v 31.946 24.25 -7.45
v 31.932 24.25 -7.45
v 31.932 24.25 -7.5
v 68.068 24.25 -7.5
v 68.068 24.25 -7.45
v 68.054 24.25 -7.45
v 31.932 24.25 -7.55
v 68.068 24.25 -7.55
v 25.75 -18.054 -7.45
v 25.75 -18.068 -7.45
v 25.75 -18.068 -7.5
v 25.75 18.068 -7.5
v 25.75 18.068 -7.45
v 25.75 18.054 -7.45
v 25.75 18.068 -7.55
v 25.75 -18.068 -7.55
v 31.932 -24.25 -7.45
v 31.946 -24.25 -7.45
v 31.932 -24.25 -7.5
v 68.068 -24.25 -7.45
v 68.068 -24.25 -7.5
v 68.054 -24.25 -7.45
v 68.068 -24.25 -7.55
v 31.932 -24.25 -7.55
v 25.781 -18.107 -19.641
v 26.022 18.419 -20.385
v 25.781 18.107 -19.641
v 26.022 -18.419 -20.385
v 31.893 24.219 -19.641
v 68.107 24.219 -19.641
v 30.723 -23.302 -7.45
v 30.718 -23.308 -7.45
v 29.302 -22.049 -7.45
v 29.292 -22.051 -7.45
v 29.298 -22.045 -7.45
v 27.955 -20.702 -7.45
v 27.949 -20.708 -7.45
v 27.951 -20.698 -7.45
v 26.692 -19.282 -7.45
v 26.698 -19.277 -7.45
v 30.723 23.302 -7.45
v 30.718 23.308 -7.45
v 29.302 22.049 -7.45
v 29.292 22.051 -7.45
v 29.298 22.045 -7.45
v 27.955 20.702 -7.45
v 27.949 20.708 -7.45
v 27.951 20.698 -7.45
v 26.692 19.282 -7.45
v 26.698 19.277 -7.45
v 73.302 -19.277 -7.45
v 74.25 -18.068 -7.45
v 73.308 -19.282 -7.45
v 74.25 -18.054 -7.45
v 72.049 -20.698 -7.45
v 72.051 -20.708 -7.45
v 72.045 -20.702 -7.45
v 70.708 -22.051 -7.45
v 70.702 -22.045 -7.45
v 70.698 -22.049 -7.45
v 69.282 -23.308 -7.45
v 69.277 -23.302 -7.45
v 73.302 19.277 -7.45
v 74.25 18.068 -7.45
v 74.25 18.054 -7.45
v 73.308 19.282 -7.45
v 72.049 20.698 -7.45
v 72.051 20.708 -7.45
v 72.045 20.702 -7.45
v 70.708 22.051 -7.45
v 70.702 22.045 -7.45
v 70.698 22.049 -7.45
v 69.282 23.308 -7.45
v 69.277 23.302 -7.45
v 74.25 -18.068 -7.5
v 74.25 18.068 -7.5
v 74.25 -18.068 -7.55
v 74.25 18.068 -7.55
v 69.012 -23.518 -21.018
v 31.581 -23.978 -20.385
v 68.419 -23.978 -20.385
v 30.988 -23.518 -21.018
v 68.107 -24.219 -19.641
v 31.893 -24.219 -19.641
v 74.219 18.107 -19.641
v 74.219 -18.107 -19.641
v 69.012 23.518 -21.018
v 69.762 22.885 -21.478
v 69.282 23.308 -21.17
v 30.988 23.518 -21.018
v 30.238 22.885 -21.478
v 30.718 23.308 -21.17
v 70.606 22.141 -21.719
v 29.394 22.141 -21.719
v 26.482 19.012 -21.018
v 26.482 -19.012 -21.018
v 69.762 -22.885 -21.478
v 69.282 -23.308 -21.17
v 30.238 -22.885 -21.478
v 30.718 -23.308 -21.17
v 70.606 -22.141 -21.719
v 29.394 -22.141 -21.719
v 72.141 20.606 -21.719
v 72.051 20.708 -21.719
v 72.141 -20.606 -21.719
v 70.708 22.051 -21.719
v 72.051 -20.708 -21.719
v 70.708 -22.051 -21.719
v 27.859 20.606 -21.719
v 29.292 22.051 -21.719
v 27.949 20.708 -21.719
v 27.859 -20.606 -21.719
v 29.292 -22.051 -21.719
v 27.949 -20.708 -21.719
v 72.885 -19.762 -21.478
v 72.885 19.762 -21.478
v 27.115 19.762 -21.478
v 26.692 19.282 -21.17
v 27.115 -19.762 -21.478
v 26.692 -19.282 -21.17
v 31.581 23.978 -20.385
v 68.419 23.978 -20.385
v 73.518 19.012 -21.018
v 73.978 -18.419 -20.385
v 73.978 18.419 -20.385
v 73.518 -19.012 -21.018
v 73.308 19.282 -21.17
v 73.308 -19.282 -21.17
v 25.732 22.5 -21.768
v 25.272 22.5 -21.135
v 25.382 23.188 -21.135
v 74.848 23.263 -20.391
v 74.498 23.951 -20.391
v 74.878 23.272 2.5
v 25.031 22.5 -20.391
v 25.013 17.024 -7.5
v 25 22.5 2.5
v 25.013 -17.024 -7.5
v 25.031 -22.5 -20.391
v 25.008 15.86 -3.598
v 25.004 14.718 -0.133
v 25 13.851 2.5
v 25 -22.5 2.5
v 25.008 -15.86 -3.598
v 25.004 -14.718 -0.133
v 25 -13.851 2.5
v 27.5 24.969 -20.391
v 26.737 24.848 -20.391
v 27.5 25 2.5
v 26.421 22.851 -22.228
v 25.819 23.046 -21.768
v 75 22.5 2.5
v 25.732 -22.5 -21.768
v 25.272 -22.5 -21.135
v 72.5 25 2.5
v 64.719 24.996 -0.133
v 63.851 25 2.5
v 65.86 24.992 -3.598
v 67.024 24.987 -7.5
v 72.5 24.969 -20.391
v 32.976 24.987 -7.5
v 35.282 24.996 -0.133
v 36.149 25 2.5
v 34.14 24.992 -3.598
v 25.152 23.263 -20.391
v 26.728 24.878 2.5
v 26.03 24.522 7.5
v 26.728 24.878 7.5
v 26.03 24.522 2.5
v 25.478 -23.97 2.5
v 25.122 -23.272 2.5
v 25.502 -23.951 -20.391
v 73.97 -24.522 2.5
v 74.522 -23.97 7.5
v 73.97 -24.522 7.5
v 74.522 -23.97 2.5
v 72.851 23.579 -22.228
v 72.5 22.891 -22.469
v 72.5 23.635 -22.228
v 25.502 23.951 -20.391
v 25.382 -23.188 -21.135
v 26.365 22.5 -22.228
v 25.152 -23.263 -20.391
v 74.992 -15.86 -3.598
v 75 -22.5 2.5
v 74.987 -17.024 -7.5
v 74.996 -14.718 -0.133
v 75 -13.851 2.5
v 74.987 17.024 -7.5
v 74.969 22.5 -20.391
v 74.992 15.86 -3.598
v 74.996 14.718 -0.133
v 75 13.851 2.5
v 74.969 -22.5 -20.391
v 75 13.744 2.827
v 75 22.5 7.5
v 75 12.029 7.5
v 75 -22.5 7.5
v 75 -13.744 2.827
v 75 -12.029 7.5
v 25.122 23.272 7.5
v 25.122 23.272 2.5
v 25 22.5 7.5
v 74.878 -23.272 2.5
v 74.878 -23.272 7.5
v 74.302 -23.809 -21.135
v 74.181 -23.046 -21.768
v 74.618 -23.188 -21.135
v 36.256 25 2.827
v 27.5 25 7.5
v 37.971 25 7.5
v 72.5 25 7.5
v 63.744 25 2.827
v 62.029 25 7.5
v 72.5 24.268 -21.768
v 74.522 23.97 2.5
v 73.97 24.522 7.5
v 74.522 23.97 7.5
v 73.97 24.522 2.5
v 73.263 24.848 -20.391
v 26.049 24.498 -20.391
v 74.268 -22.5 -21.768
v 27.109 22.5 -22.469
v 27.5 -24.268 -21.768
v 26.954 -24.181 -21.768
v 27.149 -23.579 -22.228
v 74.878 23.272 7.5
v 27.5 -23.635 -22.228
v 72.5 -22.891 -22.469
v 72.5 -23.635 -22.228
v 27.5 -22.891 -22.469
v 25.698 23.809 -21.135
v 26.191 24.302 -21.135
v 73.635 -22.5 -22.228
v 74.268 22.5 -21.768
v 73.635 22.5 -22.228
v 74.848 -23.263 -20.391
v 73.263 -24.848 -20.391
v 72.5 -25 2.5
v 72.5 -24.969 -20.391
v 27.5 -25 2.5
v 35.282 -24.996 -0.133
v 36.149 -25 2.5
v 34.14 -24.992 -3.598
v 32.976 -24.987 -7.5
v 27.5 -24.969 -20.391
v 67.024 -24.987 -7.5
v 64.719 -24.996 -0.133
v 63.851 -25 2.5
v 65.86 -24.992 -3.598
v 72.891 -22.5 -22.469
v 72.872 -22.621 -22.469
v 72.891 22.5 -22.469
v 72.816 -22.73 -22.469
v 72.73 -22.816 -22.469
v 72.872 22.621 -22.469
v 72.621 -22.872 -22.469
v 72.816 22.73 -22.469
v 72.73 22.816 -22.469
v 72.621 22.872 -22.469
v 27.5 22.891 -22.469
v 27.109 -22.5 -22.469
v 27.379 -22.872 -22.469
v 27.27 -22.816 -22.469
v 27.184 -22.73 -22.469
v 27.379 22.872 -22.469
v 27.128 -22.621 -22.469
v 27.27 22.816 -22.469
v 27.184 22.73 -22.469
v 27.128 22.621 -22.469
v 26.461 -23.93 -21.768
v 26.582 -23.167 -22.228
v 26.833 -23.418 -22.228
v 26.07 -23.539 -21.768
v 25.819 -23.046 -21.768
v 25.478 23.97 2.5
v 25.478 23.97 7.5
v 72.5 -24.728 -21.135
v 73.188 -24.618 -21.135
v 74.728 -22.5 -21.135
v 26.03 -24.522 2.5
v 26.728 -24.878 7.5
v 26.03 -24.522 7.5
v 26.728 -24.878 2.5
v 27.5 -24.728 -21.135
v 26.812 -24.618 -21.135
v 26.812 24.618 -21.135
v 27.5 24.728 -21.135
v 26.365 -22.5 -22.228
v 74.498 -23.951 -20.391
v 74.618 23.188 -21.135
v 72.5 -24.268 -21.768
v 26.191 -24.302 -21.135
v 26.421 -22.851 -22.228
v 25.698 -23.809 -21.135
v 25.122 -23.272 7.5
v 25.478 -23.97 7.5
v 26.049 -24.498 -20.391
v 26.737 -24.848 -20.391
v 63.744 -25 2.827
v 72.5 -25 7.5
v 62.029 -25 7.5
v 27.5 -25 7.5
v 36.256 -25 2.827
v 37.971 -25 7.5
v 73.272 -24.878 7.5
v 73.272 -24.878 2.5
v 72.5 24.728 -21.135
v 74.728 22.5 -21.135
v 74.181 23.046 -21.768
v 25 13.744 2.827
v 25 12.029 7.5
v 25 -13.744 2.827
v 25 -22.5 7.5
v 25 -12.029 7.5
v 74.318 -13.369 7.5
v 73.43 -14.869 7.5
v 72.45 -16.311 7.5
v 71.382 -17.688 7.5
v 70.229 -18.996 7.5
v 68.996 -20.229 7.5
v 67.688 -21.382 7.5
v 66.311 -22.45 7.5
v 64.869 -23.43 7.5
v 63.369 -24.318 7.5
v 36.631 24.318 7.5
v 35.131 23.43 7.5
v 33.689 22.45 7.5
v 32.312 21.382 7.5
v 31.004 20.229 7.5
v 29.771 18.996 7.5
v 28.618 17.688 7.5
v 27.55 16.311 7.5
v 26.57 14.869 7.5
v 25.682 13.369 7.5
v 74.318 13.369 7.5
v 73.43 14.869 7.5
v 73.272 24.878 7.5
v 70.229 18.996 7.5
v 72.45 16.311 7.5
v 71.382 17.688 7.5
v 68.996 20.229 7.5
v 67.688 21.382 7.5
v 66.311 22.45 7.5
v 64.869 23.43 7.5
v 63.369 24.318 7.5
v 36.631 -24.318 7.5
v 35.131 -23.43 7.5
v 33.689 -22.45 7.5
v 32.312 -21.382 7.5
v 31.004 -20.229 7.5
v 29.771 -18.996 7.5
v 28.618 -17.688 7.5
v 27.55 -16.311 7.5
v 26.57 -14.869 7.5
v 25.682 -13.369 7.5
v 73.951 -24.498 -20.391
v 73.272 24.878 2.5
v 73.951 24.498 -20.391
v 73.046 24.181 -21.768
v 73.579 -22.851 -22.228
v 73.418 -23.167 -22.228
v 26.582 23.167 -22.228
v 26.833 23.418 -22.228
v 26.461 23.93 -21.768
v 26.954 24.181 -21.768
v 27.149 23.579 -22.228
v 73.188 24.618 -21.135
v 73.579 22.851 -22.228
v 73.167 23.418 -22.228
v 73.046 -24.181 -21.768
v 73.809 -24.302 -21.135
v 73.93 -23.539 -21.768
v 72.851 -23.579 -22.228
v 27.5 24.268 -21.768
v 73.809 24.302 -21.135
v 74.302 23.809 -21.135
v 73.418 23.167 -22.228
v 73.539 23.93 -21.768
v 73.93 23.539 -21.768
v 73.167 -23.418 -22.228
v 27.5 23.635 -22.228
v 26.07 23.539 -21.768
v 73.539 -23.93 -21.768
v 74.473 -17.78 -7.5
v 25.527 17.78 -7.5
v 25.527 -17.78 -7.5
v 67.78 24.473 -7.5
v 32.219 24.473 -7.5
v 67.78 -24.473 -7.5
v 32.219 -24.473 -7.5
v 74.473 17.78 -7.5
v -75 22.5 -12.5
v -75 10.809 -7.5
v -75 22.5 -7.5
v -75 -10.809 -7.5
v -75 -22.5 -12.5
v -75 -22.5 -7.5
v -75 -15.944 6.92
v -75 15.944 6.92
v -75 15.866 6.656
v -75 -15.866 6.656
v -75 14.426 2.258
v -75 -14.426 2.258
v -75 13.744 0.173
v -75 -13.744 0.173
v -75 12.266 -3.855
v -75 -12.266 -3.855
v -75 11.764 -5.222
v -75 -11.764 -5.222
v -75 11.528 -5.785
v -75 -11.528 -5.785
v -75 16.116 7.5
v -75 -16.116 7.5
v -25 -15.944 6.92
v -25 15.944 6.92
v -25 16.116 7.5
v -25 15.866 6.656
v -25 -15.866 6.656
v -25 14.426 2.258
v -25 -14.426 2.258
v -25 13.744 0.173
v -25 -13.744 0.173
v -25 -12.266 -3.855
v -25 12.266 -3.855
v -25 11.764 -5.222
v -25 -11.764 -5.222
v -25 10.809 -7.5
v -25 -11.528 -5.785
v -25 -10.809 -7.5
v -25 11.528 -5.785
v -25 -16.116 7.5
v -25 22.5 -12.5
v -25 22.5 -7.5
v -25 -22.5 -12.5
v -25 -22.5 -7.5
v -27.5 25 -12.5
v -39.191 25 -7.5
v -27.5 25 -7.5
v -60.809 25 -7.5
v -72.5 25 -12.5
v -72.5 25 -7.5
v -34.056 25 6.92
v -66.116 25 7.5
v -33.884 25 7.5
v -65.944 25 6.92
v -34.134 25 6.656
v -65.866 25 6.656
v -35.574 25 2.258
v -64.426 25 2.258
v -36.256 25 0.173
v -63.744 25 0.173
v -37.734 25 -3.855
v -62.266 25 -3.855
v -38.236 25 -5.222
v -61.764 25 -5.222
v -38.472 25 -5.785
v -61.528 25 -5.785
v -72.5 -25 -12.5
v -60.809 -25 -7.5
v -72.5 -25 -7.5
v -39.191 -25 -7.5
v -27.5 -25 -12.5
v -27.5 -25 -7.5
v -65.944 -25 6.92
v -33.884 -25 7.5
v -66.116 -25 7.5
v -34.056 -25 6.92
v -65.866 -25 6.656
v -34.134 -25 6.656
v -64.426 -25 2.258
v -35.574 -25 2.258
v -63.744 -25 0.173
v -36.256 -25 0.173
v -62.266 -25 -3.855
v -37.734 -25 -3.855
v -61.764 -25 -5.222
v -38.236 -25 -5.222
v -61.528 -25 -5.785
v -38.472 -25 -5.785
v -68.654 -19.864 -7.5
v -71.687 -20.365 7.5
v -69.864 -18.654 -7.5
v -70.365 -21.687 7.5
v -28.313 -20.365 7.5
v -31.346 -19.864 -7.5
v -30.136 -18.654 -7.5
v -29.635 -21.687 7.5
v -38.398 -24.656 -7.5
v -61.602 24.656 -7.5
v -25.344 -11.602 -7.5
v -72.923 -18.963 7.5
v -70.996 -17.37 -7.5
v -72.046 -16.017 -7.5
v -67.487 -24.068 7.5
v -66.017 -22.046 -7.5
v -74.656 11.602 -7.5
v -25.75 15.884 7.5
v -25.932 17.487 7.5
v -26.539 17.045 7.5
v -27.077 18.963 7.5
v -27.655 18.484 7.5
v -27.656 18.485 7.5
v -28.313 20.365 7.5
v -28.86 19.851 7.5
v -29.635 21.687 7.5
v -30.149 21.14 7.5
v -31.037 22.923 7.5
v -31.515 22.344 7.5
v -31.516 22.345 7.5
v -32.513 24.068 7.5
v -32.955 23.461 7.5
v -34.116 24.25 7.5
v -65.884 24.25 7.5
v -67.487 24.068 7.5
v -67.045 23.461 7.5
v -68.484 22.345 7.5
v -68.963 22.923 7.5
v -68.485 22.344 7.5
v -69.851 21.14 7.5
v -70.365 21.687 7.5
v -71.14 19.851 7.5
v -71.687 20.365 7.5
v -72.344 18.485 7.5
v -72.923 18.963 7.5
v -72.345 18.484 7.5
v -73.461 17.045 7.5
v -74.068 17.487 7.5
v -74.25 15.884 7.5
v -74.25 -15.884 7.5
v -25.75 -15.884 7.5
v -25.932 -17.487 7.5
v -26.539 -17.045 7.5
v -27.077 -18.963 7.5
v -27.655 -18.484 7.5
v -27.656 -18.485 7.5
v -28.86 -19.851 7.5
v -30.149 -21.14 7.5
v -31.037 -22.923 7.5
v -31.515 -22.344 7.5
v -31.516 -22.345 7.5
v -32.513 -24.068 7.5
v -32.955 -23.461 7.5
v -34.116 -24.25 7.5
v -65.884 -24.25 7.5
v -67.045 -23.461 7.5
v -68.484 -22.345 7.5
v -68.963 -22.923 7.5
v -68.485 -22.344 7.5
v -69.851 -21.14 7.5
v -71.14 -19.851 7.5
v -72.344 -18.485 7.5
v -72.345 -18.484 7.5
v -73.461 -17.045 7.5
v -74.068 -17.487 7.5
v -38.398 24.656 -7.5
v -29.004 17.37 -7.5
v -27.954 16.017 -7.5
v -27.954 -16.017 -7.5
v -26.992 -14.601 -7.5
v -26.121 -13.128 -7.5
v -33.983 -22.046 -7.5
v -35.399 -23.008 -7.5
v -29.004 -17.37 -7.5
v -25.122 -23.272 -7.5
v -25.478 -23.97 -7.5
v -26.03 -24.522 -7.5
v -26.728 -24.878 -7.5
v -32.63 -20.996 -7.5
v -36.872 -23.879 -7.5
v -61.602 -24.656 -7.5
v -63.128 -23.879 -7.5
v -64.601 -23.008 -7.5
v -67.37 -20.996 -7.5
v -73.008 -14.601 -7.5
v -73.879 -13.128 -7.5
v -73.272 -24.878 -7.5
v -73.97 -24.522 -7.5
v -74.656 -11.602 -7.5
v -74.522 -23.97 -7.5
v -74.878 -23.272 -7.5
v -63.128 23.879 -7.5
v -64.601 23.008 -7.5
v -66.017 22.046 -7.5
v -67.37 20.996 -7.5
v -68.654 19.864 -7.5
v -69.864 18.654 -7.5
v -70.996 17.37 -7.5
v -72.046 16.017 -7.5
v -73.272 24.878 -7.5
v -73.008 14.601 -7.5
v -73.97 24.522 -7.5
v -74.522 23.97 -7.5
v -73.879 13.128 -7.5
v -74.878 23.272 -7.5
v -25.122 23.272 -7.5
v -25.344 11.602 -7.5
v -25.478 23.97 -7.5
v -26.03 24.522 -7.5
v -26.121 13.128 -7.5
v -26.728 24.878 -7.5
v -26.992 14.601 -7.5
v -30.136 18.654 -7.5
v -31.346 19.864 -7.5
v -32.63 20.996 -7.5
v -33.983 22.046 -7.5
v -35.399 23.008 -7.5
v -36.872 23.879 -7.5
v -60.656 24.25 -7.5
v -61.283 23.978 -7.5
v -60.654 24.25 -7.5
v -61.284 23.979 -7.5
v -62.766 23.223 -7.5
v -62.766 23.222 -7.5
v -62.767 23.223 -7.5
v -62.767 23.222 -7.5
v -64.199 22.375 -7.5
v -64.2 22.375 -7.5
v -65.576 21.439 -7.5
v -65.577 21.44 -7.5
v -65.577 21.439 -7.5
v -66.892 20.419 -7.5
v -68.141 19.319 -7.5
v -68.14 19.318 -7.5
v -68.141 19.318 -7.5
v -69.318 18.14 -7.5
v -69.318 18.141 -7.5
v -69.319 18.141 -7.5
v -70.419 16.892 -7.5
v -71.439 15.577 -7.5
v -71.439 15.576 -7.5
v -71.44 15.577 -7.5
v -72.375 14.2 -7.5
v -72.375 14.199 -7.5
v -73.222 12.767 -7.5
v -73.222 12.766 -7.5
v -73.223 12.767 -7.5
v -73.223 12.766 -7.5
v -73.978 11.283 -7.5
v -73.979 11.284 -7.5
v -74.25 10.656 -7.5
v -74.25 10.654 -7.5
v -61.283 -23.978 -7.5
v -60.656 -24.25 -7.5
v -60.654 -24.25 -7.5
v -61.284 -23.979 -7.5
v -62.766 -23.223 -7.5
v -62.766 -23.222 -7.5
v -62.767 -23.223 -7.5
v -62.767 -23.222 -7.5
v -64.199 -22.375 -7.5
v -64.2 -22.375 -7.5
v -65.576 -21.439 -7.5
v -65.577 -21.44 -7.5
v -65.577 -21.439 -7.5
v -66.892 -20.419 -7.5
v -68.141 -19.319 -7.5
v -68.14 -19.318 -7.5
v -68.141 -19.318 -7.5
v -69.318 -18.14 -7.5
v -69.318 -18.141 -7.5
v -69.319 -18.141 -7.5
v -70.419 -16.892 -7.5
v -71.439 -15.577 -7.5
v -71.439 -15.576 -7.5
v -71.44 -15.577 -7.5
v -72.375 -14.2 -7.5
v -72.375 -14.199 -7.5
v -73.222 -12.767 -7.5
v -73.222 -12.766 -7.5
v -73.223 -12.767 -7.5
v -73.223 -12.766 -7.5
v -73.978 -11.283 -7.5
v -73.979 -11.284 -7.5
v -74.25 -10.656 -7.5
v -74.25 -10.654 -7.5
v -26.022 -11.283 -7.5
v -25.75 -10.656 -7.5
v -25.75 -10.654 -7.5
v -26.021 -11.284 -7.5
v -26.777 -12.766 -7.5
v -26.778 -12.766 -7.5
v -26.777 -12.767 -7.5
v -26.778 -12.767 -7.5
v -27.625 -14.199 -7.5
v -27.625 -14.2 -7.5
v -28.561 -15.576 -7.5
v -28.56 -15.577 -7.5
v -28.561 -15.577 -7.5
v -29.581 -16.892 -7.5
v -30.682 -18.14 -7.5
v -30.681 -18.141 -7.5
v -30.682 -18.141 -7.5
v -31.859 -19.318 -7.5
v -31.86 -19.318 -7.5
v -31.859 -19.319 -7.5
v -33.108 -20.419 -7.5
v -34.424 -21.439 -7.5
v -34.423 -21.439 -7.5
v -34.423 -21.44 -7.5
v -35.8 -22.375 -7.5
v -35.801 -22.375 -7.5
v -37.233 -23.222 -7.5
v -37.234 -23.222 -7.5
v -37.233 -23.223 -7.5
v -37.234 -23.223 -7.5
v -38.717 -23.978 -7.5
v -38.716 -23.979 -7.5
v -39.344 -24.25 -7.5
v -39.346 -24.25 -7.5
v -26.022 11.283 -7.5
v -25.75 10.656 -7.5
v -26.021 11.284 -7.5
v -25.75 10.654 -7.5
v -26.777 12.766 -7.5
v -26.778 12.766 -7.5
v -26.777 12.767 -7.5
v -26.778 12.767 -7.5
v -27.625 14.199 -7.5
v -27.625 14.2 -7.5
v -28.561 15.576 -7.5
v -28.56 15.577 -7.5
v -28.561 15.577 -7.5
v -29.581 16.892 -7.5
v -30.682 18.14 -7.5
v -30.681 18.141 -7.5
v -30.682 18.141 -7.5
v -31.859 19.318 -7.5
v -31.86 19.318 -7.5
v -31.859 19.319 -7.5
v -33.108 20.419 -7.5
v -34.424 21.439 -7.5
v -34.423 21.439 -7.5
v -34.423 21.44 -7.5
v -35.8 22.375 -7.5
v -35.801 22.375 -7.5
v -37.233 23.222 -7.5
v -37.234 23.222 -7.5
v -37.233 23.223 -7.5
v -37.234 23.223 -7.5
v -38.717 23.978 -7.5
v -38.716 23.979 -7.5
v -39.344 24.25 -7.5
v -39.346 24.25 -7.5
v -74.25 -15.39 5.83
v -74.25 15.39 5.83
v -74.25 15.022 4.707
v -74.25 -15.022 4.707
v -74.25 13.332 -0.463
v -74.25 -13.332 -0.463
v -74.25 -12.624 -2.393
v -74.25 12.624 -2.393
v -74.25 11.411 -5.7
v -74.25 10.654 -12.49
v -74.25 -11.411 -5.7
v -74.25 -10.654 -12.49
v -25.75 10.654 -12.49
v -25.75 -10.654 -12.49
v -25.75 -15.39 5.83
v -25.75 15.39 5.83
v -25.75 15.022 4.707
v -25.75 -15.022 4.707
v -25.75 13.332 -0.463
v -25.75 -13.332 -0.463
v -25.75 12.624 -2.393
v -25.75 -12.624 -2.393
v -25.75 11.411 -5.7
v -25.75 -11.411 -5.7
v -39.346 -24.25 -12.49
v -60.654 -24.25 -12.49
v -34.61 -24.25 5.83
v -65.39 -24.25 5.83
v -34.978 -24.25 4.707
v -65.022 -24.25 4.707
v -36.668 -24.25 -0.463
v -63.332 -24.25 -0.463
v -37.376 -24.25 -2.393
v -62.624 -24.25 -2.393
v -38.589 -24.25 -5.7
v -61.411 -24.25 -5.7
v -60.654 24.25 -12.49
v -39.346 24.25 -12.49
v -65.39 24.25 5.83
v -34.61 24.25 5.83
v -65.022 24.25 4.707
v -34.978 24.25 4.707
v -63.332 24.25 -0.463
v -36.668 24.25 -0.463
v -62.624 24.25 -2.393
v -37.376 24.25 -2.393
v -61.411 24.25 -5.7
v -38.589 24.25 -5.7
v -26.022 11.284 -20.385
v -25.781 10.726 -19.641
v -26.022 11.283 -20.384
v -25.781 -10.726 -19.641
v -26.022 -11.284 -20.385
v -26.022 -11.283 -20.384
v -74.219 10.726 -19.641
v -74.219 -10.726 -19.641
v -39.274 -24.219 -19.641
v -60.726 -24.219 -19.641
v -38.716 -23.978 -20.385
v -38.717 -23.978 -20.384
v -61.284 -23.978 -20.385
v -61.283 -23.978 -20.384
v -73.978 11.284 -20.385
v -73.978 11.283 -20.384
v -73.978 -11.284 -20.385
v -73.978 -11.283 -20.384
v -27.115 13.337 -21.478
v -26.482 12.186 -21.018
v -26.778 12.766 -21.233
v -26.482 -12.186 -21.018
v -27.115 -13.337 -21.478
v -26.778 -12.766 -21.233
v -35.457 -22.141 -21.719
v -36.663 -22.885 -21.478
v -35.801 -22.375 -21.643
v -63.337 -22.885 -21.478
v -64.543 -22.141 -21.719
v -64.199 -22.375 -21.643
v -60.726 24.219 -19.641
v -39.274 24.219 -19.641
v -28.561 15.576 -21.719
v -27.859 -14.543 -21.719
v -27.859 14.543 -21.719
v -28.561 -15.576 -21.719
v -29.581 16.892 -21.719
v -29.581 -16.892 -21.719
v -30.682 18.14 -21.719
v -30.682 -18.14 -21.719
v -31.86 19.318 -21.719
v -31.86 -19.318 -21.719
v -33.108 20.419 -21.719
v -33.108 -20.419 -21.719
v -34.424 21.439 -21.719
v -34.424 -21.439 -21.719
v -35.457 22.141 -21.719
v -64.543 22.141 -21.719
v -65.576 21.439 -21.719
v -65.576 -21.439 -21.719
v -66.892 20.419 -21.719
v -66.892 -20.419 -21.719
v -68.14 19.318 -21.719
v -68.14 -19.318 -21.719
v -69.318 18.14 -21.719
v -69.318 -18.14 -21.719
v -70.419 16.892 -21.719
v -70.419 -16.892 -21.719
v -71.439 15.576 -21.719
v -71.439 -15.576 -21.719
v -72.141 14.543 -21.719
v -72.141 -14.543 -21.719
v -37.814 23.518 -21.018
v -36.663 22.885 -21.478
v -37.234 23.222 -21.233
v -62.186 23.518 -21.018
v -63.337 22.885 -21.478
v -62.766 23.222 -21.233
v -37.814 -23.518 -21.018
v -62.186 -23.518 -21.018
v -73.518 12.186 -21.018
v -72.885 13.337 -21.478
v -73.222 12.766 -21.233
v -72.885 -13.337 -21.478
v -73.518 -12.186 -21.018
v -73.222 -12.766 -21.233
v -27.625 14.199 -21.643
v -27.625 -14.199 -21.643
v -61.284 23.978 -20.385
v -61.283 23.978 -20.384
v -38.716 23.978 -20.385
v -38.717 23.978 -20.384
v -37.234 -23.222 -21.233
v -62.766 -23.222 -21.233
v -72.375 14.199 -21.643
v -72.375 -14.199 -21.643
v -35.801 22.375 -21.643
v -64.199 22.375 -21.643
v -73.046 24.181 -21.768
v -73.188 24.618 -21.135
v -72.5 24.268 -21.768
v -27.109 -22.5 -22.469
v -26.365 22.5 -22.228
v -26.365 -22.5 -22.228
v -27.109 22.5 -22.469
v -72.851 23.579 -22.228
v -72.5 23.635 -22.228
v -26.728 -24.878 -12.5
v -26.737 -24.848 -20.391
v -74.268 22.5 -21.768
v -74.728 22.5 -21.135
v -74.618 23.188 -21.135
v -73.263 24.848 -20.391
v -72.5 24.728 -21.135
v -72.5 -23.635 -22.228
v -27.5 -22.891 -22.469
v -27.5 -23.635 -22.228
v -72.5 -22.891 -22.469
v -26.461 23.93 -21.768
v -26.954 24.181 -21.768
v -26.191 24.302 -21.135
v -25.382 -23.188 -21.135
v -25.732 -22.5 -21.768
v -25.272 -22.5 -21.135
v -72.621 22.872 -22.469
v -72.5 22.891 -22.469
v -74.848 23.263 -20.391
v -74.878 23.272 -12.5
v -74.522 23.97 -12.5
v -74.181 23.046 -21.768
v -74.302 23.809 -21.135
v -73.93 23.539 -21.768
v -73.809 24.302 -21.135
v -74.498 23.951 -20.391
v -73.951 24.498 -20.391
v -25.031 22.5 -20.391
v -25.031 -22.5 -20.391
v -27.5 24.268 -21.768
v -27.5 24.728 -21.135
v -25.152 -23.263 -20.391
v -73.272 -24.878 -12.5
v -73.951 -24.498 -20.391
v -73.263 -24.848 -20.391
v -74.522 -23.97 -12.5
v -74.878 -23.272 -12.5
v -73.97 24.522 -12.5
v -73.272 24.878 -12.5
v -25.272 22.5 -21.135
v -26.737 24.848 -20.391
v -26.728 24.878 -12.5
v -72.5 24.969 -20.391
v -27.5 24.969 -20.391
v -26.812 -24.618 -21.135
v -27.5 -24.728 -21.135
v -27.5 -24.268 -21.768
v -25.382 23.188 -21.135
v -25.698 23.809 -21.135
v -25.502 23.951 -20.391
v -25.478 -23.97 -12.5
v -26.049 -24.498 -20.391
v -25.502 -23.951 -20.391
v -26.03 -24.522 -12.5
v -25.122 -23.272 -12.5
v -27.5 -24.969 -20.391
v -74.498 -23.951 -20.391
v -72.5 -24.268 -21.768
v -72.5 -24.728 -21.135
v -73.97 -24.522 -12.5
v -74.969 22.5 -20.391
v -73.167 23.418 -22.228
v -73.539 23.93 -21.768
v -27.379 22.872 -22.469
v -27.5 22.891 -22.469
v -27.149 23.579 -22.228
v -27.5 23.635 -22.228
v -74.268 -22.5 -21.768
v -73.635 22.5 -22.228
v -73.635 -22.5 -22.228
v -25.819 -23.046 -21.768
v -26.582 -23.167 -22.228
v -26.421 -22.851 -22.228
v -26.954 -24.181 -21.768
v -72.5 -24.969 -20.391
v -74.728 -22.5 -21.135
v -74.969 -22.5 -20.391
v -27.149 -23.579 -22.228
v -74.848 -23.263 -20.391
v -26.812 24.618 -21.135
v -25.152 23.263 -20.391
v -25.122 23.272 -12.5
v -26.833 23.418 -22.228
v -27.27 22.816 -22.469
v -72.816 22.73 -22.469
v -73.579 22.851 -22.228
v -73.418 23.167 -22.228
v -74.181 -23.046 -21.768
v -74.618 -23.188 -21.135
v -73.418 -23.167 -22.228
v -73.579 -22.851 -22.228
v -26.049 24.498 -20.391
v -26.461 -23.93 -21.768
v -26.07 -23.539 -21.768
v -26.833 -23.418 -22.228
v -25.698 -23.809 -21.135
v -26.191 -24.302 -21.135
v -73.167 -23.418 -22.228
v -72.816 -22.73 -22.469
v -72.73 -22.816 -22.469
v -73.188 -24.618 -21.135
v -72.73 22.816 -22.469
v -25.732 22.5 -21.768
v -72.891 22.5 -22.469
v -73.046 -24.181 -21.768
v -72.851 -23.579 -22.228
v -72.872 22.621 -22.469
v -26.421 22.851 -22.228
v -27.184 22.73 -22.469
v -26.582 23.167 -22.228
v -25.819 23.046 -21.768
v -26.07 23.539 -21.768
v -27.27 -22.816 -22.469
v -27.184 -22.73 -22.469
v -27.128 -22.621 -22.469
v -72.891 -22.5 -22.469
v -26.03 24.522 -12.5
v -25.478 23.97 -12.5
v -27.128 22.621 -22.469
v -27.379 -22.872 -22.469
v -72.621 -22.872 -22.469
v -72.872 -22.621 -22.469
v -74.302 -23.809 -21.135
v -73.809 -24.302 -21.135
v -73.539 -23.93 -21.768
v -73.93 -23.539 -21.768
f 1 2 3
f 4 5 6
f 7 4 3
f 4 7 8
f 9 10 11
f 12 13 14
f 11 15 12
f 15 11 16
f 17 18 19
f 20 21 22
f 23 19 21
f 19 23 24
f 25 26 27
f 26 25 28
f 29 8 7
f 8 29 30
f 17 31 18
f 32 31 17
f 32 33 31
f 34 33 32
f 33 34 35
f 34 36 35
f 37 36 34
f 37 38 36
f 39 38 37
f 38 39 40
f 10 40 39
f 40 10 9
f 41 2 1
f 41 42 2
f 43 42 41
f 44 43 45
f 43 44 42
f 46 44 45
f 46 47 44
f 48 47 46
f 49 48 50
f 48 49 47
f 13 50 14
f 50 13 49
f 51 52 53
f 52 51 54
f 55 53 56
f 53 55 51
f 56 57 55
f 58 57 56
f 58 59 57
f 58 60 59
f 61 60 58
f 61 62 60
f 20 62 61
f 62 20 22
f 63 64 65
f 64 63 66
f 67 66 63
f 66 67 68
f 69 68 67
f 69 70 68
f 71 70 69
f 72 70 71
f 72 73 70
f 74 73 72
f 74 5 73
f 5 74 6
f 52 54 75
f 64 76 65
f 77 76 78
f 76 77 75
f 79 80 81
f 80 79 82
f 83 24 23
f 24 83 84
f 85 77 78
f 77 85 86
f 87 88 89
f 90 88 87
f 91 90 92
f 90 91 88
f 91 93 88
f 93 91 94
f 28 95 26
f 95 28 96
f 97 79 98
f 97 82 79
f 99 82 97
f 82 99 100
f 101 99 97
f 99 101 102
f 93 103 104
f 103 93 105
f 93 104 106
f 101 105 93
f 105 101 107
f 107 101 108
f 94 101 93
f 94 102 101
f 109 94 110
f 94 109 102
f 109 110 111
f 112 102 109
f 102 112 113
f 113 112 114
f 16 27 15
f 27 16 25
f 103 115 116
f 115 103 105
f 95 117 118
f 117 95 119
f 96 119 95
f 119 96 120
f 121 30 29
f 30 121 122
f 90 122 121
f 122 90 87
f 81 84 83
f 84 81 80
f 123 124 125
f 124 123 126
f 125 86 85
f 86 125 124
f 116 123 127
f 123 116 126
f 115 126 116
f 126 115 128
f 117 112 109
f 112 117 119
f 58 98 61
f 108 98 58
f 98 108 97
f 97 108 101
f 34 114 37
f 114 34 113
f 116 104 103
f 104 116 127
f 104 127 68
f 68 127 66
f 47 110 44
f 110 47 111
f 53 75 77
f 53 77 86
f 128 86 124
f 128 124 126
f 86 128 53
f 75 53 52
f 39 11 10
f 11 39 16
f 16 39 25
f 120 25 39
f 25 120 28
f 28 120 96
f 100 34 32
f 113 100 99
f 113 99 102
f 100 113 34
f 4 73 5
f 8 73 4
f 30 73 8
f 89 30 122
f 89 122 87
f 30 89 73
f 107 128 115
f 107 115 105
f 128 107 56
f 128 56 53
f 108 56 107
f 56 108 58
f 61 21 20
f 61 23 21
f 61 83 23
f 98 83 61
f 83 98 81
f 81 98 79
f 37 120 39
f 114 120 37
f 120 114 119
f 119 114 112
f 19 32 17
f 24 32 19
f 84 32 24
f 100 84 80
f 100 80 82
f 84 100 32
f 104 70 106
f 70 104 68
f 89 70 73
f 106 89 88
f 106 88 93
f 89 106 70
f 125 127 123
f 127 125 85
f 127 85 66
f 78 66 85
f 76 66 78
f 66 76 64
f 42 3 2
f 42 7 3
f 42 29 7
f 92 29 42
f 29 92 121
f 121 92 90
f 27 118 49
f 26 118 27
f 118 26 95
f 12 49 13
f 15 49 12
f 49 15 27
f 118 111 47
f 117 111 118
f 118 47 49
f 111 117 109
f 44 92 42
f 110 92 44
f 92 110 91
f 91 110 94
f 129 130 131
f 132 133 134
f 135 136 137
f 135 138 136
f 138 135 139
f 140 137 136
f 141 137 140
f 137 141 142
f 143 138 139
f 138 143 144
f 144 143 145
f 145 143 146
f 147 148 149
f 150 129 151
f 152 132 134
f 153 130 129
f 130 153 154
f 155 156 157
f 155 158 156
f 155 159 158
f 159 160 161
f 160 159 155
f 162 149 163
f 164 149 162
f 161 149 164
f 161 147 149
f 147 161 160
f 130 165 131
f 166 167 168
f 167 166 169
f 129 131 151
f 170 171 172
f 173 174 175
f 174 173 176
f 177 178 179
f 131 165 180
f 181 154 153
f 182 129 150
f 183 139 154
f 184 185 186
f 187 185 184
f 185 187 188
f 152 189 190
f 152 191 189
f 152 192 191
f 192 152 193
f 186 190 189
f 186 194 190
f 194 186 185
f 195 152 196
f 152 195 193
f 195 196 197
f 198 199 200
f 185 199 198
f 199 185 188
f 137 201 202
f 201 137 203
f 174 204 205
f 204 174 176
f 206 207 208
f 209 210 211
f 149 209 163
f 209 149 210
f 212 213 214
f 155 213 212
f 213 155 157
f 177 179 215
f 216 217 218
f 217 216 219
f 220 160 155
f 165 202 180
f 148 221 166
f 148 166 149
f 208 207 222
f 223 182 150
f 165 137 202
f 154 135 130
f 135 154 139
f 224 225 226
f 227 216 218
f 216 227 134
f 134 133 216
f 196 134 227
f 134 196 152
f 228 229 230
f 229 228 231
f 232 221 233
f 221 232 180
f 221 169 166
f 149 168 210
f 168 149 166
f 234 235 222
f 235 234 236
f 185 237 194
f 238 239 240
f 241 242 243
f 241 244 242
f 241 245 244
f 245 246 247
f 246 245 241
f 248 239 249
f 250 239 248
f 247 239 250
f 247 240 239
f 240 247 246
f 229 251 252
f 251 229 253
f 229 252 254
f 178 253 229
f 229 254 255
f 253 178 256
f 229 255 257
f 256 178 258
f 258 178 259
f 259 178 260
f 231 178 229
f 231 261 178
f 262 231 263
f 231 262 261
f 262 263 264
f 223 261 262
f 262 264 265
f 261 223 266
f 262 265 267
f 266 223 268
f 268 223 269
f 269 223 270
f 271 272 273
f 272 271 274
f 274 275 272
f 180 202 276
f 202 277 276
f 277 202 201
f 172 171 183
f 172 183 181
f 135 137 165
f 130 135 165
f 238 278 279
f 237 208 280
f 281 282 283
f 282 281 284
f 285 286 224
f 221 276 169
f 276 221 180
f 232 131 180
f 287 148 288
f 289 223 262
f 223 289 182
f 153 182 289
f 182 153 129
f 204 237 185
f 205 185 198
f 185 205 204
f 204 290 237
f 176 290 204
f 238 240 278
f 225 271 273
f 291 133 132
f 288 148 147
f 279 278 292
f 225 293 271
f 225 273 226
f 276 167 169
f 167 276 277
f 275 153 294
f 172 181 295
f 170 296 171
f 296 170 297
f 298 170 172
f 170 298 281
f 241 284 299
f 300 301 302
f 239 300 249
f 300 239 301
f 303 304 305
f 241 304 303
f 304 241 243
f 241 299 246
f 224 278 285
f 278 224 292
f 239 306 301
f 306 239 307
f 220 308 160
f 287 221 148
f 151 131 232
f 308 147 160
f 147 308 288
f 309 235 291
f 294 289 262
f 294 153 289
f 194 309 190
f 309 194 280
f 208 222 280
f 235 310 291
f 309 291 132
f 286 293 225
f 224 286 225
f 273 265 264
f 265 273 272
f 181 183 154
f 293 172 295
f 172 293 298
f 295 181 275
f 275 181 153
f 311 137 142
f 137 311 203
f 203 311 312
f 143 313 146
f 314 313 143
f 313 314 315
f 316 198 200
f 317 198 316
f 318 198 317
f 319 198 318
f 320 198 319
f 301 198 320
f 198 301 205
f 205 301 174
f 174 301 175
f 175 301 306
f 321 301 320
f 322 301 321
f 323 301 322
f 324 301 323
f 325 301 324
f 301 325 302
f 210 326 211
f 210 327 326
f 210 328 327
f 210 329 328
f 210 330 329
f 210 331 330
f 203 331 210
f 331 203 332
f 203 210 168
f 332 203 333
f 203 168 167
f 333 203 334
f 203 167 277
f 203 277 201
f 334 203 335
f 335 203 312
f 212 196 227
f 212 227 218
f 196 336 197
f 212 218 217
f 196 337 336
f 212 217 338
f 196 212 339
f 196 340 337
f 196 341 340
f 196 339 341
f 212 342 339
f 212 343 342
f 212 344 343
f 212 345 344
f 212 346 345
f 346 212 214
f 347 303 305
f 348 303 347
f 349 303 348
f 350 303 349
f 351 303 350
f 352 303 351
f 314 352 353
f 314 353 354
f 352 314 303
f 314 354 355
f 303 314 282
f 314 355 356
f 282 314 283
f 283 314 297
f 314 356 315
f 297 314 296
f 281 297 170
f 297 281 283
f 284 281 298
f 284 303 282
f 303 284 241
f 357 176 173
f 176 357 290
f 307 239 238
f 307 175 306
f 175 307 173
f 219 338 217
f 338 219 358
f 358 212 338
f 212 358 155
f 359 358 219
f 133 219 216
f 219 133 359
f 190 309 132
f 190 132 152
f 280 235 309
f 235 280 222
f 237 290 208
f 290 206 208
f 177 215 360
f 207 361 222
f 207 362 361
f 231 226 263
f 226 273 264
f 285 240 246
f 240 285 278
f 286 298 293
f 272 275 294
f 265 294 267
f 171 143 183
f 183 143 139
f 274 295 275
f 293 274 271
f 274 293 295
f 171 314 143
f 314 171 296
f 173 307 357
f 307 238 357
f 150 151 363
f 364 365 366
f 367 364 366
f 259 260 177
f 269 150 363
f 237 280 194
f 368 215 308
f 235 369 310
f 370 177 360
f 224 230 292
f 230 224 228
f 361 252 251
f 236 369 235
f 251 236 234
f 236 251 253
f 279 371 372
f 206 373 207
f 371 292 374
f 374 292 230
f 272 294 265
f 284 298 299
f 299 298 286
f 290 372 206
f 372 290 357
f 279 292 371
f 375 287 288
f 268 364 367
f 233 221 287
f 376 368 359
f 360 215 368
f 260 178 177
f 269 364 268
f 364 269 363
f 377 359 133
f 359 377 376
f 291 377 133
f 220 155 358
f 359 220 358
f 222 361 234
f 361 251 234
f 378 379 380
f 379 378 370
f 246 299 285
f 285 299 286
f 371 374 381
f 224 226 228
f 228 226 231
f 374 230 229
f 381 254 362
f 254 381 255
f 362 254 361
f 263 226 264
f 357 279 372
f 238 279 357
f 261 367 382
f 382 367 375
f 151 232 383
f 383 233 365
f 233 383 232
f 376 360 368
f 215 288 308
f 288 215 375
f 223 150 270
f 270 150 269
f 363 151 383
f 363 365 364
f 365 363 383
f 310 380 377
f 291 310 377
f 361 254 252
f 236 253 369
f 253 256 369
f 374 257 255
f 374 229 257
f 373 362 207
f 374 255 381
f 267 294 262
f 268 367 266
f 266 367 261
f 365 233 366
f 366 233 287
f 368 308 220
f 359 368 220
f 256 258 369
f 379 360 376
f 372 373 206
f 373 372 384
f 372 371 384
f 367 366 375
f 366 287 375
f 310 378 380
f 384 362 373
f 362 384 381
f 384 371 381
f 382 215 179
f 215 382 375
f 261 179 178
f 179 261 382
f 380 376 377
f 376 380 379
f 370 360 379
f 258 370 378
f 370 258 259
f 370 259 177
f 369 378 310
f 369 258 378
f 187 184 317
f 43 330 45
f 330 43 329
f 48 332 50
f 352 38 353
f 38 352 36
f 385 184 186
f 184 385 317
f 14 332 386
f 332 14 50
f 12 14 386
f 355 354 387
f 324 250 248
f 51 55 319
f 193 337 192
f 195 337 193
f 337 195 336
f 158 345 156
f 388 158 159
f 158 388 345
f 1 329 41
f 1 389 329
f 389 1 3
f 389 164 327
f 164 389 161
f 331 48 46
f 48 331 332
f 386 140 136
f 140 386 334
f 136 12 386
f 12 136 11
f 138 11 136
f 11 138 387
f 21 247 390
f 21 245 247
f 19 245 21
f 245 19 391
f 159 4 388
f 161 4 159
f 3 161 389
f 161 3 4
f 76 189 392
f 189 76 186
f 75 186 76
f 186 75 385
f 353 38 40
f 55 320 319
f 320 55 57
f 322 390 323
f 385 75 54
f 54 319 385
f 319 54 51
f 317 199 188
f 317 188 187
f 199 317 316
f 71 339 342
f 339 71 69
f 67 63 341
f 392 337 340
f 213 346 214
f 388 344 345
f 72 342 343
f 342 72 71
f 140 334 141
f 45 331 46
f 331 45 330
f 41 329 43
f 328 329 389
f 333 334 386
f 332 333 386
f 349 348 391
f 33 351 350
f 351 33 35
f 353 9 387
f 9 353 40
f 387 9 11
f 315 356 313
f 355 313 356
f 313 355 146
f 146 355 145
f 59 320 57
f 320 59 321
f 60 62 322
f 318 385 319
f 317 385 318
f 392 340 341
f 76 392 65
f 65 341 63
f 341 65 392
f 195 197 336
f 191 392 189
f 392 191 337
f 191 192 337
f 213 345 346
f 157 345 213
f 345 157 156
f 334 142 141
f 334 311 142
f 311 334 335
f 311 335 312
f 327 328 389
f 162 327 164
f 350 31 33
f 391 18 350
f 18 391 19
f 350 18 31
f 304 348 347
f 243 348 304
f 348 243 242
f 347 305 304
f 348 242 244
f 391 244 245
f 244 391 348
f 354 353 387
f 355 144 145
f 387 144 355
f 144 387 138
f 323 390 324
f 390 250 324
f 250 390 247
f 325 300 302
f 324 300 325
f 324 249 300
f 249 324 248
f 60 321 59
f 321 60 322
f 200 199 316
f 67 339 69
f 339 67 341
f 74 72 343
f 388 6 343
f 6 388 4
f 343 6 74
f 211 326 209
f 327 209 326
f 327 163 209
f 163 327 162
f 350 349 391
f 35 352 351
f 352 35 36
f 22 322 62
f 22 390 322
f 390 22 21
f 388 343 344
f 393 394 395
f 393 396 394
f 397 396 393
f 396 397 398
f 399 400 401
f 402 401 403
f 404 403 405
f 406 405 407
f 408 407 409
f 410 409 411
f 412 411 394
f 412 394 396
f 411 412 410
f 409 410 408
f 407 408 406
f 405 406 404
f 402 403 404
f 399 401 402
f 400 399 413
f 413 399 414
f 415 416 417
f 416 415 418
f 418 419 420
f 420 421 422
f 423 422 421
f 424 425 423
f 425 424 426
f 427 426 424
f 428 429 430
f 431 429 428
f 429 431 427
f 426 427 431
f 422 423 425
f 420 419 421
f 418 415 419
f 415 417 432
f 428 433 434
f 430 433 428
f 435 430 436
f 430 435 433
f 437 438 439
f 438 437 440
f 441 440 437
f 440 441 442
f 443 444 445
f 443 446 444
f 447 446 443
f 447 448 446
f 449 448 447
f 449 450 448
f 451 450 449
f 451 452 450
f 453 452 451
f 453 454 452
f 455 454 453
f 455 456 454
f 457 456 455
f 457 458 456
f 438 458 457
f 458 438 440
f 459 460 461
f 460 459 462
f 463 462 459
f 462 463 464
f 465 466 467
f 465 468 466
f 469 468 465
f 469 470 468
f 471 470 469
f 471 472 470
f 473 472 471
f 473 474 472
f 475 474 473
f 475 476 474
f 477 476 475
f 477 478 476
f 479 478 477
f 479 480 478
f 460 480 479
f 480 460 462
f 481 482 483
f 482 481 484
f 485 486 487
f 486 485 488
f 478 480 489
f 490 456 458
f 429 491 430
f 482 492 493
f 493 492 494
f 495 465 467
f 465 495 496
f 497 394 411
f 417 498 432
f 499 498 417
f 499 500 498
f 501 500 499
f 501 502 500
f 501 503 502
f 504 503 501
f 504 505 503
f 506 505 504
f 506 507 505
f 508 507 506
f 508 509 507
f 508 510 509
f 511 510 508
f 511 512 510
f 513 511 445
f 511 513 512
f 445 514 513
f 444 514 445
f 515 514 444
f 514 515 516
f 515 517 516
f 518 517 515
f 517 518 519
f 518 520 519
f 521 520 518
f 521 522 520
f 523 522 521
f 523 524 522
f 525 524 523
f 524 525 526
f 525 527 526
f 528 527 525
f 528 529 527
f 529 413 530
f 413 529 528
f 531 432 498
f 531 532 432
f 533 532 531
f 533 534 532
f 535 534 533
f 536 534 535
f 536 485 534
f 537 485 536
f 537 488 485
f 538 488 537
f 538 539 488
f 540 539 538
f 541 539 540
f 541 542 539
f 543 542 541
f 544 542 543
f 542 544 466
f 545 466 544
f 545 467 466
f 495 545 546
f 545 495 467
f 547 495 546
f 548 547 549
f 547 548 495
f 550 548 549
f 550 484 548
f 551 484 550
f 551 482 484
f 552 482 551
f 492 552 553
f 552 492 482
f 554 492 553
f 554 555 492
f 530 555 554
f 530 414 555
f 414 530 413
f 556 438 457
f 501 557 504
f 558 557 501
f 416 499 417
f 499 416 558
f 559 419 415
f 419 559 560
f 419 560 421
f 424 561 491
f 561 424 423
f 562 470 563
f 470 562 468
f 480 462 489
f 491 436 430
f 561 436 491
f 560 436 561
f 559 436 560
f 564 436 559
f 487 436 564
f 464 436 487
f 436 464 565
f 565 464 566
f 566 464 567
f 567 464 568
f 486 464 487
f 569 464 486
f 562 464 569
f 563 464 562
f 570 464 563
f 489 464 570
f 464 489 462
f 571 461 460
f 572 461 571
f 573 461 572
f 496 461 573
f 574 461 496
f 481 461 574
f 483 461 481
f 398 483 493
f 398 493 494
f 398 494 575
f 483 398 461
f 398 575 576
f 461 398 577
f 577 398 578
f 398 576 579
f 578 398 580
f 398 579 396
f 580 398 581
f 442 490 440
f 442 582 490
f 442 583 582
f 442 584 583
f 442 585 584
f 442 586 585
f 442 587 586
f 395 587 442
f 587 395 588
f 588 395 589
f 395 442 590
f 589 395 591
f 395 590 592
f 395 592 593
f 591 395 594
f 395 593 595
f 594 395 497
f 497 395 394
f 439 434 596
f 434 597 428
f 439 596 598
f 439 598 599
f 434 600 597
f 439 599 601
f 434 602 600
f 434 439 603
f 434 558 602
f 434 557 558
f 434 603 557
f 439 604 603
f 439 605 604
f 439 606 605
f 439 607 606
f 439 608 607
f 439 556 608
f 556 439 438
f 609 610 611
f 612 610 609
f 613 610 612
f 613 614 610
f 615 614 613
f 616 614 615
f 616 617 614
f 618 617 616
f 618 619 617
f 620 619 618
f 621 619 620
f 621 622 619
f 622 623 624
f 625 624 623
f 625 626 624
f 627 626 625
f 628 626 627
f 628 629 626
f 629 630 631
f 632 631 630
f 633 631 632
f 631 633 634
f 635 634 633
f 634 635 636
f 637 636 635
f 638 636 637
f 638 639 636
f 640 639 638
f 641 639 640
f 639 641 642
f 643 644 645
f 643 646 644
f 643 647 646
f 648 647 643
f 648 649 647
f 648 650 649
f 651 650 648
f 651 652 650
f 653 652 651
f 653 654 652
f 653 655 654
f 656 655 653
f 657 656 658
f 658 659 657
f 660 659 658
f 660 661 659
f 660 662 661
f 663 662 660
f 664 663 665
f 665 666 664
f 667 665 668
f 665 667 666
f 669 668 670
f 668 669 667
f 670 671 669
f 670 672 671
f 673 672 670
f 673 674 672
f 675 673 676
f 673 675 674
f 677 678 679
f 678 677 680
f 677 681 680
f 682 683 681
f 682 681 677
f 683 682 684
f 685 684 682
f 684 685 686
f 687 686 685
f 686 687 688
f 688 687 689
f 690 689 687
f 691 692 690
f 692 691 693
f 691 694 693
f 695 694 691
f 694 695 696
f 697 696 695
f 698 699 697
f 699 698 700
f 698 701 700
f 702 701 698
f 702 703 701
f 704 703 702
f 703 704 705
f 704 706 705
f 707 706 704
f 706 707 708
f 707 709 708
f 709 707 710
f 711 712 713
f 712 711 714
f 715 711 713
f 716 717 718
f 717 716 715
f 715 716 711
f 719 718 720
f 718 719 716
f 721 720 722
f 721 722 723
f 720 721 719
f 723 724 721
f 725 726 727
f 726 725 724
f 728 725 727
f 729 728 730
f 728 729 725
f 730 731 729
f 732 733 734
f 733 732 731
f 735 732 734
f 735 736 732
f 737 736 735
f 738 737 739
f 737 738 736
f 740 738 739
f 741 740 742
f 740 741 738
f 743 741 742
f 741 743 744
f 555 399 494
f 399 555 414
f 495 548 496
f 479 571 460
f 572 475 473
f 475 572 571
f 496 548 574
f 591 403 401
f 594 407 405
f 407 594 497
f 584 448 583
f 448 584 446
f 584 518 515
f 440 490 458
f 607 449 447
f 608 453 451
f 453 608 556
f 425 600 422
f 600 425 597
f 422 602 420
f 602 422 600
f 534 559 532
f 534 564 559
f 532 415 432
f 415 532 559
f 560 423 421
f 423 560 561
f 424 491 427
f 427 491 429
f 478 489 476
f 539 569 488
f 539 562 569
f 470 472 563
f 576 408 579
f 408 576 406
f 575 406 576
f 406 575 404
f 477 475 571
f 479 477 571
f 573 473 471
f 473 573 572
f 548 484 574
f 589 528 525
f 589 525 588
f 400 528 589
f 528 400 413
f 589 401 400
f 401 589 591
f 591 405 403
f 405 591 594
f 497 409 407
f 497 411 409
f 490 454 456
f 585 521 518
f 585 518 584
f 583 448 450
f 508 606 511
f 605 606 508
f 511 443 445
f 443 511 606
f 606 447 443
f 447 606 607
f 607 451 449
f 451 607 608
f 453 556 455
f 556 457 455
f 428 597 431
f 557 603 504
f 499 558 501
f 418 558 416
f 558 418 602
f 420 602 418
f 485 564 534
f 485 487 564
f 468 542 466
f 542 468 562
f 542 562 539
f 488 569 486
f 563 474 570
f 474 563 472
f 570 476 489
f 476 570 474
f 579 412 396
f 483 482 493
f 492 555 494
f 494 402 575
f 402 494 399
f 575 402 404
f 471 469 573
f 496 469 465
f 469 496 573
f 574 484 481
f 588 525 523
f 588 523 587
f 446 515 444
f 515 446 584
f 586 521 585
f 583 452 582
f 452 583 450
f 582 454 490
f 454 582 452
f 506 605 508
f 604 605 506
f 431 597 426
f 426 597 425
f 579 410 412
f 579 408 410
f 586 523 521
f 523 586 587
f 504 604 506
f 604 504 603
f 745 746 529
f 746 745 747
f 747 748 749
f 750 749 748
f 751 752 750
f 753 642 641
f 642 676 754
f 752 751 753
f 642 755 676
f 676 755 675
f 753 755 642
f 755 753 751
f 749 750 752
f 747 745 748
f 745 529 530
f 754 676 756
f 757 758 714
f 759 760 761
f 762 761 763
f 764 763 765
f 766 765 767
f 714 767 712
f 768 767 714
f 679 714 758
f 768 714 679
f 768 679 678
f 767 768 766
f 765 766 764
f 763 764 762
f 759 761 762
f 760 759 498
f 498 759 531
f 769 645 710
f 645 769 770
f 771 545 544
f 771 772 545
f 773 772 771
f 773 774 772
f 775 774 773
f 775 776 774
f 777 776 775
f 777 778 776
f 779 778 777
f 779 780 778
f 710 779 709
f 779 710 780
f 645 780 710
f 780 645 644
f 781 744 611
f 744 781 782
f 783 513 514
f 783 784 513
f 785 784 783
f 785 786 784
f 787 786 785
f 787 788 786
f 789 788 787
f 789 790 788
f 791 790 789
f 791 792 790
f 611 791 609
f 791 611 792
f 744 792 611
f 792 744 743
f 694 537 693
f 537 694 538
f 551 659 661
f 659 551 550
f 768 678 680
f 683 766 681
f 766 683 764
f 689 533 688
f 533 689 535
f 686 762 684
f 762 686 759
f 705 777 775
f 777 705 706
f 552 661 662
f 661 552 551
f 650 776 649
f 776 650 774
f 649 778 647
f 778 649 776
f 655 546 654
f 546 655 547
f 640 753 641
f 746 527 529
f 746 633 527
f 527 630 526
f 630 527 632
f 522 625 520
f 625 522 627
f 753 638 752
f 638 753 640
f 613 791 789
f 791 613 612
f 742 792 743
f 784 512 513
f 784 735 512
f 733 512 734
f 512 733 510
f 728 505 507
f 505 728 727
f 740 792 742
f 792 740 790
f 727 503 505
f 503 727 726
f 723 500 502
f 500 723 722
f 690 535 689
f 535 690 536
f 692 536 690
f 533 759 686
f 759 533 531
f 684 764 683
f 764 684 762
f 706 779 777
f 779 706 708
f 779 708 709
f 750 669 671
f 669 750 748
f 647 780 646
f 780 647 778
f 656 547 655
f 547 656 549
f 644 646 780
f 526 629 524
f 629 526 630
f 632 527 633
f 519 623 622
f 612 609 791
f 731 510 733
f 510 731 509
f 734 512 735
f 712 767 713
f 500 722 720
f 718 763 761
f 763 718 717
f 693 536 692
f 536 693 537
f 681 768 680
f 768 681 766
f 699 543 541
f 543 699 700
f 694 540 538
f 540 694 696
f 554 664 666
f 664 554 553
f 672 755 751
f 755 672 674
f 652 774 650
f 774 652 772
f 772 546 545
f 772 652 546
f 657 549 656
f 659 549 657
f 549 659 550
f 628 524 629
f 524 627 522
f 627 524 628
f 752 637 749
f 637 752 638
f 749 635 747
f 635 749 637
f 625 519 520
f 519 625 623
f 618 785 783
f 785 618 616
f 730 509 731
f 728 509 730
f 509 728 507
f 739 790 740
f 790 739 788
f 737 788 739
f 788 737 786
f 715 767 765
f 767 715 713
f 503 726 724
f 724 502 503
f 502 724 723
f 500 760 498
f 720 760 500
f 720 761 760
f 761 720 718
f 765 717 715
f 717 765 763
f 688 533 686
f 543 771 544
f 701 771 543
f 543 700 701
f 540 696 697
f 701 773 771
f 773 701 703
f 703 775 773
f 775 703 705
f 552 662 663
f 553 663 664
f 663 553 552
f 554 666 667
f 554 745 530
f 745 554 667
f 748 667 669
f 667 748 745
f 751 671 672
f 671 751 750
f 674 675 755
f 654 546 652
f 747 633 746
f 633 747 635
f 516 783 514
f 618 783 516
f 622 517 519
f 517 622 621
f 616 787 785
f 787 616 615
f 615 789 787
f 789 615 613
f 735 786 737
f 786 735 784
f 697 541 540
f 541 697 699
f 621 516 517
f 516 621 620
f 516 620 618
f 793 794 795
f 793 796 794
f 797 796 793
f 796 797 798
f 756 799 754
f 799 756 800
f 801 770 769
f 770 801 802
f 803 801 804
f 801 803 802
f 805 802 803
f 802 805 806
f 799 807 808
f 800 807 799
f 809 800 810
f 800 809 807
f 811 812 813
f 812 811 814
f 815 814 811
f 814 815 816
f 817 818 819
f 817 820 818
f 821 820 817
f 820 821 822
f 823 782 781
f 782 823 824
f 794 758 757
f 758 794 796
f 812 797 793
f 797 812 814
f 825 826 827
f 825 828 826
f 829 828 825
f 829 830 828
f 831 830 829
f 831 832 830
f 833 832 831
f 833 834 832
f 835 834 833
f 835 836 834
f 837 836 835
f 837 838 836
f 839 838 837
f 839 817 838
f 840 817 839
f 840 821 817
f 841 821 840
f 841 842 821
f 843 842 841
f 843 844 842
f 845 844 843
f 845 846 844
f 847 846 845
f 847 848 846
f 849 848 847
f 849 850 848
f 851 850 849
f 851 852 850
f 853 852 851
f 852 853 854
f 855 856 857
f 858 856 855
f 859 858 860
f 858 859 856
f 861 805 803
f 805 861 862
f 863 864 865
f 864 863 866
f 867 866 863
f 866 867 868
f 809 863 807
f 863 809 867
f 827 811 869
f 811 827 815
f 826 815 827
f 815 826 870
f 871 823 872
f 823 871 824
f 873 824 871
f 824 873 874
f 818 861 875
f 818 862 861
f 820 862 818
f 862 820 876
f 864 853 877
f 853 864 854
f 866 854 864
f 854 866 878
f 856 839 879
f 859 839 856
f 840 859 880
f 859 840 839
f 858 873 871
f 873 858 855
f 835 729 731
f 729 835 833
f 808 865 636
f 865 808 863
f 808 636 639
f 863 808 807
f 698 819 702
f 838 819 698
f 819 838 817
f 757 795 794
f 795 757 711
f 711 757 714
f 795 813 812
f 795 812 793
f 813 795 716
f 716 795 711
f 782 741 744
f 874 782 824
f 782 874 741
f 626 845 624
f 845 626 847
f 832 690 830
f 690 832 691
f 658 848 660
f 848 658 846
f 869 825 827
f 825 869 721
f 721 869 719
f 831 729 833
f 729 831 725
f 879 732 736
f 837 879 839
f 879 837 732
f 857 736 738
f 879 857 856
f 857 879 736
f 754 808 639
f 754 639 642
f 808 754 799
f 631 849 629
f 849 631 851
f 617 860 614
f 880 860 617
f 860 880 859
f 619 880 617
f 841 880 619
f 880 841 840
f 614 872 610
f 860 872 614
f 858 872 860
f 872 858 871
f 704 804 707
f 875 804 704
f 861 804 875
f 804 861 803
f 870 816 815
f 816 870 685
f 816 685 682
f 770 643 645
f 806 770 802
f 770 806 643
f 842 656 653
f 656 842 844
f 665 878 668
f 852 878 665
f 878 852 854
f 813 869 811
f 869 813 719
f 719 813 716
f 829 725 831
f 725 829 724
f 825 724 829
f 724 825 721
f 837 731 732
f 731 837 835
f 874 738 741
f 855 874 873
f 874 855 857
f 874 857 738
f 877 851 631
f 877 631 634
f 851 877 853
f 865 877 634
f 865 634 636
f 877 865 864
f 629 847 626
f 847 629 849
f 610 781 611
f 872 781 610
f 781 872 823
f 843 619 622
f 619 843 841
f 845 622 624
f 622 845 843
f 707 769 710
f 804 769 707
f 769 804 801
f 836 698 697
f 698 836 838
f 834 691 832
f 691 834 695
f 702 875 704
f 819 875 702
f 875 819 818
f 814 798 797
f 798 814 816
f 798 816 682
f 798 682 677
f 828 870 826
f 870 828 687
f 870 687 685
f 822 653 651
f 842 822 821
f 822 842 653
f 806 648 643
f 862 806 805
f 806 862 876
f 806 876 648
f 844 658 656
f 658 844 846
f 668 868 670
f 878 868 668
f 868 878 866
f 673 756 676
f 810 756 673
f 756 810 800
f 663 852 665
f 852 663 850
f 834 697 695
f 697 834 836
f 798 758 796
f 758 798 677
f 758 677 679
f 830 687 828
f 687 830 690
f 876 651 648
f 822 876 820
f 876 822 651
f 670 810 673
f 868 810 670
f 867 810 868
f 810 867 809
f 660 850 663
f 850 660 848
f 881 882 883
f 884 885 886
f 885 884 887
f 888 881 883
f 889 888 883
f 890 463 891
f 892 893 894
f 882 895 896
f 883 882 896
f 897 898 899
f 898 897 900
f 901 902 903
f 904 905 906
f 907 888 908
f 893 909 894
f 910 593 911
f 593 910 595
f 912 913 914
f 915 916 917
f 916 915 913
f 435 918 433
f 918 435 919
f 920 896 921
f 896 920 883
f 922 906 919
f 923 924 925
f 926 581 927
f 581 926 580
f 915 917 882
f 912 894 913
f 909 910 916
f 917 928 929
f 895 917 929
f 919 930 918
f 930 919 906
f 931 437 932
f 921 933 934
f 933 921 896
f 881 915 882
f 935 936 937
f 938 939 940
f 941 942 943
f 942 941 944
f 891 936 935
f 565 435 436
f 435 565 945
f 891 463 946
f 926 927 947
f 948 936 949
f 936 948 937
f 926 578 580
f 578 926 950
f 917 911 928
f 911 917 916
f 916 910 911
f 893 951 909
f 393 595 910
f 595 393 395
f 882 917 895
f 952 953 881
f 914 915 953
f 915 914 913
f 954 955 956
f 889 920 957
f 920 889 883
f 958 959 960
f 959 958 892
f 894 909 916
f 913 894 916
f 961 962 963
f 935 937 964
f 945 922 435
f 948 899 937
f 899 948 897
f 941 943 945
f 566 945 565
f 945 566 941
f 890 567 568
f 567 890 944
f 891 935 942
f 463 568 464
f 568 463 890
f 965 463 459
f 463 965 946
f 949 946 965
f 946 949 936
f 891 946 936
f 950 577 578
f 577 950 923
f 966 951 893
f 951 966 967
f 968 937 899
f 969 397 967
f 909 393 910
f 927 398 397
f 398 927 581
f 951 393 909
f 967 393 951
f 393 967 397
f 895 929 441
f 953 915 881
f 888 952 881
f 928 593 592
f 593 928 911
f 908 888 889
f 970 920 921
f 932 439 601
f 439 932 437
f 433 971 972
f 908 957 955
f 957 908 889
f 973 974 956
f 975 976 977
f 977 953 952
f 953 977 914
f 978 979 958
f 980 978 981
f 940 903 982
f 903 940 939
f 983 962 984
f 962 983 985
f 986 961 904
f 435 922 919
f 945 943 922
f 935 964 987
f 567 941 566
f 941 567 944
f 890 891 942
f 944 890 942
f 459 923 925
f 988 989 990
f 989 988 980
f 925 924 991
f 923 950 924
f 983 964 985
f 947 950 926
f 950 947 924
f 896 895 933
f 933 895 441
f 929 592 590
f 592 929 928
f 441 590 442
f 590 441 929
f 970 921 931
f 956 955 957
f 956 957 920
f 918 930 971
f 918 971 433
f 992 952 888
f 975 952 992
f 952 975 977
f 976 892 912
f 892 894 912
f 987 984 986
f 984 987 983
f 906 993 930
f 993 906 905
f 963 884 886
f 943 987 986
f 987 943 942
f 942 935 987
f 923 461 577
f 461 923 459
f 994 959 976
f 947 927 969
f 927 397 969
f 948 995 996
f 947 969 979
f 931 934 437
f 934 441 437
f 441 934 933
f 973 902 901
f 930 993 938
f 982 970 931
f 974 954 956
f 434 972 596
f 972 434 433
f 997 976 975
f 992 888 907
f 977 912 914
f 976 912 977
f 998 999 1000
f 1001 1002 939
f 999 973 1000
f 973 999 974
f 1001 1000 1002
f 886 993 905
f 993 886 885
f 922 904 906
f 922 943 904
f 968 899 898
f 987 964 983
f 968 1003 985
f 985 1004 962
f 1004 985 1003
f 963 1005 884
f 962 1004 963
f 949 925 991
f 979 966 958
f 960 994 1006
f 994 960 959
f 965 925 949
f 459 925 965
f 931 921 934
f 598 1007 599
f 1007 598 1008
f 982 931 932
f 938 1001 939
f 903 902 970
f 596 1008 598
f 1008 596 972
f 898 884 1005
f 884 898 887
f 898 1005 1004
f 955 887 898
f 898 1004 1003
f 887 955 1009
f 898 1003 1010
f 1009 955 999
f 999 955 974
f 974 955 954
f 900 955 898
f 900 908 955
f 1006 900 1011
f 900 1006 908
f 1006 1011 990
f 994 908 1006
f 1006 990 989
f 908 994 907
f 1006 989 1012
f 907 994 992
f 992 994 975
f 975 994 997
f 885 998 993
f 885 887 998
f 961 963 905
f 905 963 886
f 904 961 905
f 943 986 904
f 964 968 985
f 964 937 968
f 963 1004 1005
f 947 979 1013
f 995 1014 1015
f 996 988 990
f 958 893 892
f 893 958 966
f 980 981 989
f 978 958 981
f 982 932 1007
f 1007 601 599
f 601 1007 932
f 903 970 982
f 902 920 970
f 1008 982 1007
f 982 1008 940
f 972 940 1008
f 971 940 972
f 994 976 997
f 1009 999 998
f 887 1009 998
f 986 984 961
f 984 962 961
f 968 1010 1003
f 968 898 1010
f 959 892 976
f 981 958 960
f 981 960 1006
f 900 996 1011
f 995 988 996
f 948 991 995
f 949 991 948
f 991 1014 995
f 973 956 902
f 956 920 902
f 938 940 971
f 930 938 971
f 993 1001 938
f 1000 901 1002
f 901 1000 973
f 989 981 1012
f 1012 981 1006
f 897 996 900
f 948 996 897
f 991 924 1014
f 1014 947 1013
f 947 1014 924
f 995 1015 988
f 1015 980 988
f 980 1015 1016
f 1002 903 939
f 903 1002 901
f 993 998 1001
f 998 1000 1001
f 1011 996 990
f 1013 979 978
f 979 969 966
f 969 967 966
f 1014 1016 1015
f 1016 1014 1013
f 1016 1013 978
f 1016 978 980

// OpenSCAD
module dessous(ep=0.75) {
    union() {
        difference() {
            intersection() {
                cube(50,center=true);
                cylinder(d1=54.5,d2=59.5,h=15,center=true,$fn=100);
            }
            intersection() {
                cube(50-2*ep,center=true);
                cylinder(d1=54.5-2*ep,d2=59.5-2*ep,h=15.01,center=true,$fn=100);
            }
        }
    // Cube externe (arrondi) => cube([50,50,30]);
        difference() {
            translate([0,0,-15]) hull() {
                for(x=[-25+2.5,25-2.5],y=[-25+2.5,25-2.5]) {
                    translate([x,y,-7.5+2.5]) sphere(d=5,center=true,$fn=20);
                    translate([x,y,7.5-2.5]) cylinder(d=5,h=5,center=true,$fn=20);
                }
            }
    // Evidement intérieur du cube
            translate([0,0,-15]) intersection() {
                hull() {
                    for(x=[-25+2.5+ep,25-2.5-ep],y=[-25+2.5+ep,25-2.5-ep]) {
                        translate([x,y,-7.5+2.5+ep]) sphere(d=5,center=true,$fn=20);
                        translate([x,y,7.5-2.5+.01]) cylinder(d=5,h=5,center=true,$fn=20);
                    }
                }
                cylinder(d=54.5-2*ep,h=50,center=true,$fn=100);
            }
        }
    }
}


module dessus(ep=0.75) 
{
    difference() {
        translate([0,0,7.5]) {
            difference() {
// Cube externe (arrondi) => cube([50,50,30]);
                hull() {
                    for(x=[-25+2.5,25-2.5],y=[-25+2.5,25-2.5]) {
                        translate([x,y,15-2.5]) sphere(d=5,center=true,$fn=20);
                        translate([x,y,-15+2.5]) cylinder(d=5,h=5,center=true,$fn=20);
                    }
                }
// Cube interne
                intersection() {
                    hull() {
                        cube([50-2*ep,50-2*ep,0.1],center=true);
                        for(x=[-25+ep+2.5,25-ep-2.5],y=[-25+ep+2.5,25-ep-2.5]) translate([x,y,12.5-ep]) sphere(d=5,center=true,$fn=20);
                    }
                    cylinder(d=60.5,h=30,center=true,$fn=100);
                }
            }
        }
// Evidement conique
        cylinder(d1=55.5,d2=60.5,h=15,center=true,$fn=100);
// Supression limite sup.
        translate([0,0,-7.5]) cylinder(d=55.5,h=1,center=true,$fn=100);
    }   
}

translate([50,0,0]) rotate([180,0,0]) dessus();
translate([-50,0,0]) dessous();
